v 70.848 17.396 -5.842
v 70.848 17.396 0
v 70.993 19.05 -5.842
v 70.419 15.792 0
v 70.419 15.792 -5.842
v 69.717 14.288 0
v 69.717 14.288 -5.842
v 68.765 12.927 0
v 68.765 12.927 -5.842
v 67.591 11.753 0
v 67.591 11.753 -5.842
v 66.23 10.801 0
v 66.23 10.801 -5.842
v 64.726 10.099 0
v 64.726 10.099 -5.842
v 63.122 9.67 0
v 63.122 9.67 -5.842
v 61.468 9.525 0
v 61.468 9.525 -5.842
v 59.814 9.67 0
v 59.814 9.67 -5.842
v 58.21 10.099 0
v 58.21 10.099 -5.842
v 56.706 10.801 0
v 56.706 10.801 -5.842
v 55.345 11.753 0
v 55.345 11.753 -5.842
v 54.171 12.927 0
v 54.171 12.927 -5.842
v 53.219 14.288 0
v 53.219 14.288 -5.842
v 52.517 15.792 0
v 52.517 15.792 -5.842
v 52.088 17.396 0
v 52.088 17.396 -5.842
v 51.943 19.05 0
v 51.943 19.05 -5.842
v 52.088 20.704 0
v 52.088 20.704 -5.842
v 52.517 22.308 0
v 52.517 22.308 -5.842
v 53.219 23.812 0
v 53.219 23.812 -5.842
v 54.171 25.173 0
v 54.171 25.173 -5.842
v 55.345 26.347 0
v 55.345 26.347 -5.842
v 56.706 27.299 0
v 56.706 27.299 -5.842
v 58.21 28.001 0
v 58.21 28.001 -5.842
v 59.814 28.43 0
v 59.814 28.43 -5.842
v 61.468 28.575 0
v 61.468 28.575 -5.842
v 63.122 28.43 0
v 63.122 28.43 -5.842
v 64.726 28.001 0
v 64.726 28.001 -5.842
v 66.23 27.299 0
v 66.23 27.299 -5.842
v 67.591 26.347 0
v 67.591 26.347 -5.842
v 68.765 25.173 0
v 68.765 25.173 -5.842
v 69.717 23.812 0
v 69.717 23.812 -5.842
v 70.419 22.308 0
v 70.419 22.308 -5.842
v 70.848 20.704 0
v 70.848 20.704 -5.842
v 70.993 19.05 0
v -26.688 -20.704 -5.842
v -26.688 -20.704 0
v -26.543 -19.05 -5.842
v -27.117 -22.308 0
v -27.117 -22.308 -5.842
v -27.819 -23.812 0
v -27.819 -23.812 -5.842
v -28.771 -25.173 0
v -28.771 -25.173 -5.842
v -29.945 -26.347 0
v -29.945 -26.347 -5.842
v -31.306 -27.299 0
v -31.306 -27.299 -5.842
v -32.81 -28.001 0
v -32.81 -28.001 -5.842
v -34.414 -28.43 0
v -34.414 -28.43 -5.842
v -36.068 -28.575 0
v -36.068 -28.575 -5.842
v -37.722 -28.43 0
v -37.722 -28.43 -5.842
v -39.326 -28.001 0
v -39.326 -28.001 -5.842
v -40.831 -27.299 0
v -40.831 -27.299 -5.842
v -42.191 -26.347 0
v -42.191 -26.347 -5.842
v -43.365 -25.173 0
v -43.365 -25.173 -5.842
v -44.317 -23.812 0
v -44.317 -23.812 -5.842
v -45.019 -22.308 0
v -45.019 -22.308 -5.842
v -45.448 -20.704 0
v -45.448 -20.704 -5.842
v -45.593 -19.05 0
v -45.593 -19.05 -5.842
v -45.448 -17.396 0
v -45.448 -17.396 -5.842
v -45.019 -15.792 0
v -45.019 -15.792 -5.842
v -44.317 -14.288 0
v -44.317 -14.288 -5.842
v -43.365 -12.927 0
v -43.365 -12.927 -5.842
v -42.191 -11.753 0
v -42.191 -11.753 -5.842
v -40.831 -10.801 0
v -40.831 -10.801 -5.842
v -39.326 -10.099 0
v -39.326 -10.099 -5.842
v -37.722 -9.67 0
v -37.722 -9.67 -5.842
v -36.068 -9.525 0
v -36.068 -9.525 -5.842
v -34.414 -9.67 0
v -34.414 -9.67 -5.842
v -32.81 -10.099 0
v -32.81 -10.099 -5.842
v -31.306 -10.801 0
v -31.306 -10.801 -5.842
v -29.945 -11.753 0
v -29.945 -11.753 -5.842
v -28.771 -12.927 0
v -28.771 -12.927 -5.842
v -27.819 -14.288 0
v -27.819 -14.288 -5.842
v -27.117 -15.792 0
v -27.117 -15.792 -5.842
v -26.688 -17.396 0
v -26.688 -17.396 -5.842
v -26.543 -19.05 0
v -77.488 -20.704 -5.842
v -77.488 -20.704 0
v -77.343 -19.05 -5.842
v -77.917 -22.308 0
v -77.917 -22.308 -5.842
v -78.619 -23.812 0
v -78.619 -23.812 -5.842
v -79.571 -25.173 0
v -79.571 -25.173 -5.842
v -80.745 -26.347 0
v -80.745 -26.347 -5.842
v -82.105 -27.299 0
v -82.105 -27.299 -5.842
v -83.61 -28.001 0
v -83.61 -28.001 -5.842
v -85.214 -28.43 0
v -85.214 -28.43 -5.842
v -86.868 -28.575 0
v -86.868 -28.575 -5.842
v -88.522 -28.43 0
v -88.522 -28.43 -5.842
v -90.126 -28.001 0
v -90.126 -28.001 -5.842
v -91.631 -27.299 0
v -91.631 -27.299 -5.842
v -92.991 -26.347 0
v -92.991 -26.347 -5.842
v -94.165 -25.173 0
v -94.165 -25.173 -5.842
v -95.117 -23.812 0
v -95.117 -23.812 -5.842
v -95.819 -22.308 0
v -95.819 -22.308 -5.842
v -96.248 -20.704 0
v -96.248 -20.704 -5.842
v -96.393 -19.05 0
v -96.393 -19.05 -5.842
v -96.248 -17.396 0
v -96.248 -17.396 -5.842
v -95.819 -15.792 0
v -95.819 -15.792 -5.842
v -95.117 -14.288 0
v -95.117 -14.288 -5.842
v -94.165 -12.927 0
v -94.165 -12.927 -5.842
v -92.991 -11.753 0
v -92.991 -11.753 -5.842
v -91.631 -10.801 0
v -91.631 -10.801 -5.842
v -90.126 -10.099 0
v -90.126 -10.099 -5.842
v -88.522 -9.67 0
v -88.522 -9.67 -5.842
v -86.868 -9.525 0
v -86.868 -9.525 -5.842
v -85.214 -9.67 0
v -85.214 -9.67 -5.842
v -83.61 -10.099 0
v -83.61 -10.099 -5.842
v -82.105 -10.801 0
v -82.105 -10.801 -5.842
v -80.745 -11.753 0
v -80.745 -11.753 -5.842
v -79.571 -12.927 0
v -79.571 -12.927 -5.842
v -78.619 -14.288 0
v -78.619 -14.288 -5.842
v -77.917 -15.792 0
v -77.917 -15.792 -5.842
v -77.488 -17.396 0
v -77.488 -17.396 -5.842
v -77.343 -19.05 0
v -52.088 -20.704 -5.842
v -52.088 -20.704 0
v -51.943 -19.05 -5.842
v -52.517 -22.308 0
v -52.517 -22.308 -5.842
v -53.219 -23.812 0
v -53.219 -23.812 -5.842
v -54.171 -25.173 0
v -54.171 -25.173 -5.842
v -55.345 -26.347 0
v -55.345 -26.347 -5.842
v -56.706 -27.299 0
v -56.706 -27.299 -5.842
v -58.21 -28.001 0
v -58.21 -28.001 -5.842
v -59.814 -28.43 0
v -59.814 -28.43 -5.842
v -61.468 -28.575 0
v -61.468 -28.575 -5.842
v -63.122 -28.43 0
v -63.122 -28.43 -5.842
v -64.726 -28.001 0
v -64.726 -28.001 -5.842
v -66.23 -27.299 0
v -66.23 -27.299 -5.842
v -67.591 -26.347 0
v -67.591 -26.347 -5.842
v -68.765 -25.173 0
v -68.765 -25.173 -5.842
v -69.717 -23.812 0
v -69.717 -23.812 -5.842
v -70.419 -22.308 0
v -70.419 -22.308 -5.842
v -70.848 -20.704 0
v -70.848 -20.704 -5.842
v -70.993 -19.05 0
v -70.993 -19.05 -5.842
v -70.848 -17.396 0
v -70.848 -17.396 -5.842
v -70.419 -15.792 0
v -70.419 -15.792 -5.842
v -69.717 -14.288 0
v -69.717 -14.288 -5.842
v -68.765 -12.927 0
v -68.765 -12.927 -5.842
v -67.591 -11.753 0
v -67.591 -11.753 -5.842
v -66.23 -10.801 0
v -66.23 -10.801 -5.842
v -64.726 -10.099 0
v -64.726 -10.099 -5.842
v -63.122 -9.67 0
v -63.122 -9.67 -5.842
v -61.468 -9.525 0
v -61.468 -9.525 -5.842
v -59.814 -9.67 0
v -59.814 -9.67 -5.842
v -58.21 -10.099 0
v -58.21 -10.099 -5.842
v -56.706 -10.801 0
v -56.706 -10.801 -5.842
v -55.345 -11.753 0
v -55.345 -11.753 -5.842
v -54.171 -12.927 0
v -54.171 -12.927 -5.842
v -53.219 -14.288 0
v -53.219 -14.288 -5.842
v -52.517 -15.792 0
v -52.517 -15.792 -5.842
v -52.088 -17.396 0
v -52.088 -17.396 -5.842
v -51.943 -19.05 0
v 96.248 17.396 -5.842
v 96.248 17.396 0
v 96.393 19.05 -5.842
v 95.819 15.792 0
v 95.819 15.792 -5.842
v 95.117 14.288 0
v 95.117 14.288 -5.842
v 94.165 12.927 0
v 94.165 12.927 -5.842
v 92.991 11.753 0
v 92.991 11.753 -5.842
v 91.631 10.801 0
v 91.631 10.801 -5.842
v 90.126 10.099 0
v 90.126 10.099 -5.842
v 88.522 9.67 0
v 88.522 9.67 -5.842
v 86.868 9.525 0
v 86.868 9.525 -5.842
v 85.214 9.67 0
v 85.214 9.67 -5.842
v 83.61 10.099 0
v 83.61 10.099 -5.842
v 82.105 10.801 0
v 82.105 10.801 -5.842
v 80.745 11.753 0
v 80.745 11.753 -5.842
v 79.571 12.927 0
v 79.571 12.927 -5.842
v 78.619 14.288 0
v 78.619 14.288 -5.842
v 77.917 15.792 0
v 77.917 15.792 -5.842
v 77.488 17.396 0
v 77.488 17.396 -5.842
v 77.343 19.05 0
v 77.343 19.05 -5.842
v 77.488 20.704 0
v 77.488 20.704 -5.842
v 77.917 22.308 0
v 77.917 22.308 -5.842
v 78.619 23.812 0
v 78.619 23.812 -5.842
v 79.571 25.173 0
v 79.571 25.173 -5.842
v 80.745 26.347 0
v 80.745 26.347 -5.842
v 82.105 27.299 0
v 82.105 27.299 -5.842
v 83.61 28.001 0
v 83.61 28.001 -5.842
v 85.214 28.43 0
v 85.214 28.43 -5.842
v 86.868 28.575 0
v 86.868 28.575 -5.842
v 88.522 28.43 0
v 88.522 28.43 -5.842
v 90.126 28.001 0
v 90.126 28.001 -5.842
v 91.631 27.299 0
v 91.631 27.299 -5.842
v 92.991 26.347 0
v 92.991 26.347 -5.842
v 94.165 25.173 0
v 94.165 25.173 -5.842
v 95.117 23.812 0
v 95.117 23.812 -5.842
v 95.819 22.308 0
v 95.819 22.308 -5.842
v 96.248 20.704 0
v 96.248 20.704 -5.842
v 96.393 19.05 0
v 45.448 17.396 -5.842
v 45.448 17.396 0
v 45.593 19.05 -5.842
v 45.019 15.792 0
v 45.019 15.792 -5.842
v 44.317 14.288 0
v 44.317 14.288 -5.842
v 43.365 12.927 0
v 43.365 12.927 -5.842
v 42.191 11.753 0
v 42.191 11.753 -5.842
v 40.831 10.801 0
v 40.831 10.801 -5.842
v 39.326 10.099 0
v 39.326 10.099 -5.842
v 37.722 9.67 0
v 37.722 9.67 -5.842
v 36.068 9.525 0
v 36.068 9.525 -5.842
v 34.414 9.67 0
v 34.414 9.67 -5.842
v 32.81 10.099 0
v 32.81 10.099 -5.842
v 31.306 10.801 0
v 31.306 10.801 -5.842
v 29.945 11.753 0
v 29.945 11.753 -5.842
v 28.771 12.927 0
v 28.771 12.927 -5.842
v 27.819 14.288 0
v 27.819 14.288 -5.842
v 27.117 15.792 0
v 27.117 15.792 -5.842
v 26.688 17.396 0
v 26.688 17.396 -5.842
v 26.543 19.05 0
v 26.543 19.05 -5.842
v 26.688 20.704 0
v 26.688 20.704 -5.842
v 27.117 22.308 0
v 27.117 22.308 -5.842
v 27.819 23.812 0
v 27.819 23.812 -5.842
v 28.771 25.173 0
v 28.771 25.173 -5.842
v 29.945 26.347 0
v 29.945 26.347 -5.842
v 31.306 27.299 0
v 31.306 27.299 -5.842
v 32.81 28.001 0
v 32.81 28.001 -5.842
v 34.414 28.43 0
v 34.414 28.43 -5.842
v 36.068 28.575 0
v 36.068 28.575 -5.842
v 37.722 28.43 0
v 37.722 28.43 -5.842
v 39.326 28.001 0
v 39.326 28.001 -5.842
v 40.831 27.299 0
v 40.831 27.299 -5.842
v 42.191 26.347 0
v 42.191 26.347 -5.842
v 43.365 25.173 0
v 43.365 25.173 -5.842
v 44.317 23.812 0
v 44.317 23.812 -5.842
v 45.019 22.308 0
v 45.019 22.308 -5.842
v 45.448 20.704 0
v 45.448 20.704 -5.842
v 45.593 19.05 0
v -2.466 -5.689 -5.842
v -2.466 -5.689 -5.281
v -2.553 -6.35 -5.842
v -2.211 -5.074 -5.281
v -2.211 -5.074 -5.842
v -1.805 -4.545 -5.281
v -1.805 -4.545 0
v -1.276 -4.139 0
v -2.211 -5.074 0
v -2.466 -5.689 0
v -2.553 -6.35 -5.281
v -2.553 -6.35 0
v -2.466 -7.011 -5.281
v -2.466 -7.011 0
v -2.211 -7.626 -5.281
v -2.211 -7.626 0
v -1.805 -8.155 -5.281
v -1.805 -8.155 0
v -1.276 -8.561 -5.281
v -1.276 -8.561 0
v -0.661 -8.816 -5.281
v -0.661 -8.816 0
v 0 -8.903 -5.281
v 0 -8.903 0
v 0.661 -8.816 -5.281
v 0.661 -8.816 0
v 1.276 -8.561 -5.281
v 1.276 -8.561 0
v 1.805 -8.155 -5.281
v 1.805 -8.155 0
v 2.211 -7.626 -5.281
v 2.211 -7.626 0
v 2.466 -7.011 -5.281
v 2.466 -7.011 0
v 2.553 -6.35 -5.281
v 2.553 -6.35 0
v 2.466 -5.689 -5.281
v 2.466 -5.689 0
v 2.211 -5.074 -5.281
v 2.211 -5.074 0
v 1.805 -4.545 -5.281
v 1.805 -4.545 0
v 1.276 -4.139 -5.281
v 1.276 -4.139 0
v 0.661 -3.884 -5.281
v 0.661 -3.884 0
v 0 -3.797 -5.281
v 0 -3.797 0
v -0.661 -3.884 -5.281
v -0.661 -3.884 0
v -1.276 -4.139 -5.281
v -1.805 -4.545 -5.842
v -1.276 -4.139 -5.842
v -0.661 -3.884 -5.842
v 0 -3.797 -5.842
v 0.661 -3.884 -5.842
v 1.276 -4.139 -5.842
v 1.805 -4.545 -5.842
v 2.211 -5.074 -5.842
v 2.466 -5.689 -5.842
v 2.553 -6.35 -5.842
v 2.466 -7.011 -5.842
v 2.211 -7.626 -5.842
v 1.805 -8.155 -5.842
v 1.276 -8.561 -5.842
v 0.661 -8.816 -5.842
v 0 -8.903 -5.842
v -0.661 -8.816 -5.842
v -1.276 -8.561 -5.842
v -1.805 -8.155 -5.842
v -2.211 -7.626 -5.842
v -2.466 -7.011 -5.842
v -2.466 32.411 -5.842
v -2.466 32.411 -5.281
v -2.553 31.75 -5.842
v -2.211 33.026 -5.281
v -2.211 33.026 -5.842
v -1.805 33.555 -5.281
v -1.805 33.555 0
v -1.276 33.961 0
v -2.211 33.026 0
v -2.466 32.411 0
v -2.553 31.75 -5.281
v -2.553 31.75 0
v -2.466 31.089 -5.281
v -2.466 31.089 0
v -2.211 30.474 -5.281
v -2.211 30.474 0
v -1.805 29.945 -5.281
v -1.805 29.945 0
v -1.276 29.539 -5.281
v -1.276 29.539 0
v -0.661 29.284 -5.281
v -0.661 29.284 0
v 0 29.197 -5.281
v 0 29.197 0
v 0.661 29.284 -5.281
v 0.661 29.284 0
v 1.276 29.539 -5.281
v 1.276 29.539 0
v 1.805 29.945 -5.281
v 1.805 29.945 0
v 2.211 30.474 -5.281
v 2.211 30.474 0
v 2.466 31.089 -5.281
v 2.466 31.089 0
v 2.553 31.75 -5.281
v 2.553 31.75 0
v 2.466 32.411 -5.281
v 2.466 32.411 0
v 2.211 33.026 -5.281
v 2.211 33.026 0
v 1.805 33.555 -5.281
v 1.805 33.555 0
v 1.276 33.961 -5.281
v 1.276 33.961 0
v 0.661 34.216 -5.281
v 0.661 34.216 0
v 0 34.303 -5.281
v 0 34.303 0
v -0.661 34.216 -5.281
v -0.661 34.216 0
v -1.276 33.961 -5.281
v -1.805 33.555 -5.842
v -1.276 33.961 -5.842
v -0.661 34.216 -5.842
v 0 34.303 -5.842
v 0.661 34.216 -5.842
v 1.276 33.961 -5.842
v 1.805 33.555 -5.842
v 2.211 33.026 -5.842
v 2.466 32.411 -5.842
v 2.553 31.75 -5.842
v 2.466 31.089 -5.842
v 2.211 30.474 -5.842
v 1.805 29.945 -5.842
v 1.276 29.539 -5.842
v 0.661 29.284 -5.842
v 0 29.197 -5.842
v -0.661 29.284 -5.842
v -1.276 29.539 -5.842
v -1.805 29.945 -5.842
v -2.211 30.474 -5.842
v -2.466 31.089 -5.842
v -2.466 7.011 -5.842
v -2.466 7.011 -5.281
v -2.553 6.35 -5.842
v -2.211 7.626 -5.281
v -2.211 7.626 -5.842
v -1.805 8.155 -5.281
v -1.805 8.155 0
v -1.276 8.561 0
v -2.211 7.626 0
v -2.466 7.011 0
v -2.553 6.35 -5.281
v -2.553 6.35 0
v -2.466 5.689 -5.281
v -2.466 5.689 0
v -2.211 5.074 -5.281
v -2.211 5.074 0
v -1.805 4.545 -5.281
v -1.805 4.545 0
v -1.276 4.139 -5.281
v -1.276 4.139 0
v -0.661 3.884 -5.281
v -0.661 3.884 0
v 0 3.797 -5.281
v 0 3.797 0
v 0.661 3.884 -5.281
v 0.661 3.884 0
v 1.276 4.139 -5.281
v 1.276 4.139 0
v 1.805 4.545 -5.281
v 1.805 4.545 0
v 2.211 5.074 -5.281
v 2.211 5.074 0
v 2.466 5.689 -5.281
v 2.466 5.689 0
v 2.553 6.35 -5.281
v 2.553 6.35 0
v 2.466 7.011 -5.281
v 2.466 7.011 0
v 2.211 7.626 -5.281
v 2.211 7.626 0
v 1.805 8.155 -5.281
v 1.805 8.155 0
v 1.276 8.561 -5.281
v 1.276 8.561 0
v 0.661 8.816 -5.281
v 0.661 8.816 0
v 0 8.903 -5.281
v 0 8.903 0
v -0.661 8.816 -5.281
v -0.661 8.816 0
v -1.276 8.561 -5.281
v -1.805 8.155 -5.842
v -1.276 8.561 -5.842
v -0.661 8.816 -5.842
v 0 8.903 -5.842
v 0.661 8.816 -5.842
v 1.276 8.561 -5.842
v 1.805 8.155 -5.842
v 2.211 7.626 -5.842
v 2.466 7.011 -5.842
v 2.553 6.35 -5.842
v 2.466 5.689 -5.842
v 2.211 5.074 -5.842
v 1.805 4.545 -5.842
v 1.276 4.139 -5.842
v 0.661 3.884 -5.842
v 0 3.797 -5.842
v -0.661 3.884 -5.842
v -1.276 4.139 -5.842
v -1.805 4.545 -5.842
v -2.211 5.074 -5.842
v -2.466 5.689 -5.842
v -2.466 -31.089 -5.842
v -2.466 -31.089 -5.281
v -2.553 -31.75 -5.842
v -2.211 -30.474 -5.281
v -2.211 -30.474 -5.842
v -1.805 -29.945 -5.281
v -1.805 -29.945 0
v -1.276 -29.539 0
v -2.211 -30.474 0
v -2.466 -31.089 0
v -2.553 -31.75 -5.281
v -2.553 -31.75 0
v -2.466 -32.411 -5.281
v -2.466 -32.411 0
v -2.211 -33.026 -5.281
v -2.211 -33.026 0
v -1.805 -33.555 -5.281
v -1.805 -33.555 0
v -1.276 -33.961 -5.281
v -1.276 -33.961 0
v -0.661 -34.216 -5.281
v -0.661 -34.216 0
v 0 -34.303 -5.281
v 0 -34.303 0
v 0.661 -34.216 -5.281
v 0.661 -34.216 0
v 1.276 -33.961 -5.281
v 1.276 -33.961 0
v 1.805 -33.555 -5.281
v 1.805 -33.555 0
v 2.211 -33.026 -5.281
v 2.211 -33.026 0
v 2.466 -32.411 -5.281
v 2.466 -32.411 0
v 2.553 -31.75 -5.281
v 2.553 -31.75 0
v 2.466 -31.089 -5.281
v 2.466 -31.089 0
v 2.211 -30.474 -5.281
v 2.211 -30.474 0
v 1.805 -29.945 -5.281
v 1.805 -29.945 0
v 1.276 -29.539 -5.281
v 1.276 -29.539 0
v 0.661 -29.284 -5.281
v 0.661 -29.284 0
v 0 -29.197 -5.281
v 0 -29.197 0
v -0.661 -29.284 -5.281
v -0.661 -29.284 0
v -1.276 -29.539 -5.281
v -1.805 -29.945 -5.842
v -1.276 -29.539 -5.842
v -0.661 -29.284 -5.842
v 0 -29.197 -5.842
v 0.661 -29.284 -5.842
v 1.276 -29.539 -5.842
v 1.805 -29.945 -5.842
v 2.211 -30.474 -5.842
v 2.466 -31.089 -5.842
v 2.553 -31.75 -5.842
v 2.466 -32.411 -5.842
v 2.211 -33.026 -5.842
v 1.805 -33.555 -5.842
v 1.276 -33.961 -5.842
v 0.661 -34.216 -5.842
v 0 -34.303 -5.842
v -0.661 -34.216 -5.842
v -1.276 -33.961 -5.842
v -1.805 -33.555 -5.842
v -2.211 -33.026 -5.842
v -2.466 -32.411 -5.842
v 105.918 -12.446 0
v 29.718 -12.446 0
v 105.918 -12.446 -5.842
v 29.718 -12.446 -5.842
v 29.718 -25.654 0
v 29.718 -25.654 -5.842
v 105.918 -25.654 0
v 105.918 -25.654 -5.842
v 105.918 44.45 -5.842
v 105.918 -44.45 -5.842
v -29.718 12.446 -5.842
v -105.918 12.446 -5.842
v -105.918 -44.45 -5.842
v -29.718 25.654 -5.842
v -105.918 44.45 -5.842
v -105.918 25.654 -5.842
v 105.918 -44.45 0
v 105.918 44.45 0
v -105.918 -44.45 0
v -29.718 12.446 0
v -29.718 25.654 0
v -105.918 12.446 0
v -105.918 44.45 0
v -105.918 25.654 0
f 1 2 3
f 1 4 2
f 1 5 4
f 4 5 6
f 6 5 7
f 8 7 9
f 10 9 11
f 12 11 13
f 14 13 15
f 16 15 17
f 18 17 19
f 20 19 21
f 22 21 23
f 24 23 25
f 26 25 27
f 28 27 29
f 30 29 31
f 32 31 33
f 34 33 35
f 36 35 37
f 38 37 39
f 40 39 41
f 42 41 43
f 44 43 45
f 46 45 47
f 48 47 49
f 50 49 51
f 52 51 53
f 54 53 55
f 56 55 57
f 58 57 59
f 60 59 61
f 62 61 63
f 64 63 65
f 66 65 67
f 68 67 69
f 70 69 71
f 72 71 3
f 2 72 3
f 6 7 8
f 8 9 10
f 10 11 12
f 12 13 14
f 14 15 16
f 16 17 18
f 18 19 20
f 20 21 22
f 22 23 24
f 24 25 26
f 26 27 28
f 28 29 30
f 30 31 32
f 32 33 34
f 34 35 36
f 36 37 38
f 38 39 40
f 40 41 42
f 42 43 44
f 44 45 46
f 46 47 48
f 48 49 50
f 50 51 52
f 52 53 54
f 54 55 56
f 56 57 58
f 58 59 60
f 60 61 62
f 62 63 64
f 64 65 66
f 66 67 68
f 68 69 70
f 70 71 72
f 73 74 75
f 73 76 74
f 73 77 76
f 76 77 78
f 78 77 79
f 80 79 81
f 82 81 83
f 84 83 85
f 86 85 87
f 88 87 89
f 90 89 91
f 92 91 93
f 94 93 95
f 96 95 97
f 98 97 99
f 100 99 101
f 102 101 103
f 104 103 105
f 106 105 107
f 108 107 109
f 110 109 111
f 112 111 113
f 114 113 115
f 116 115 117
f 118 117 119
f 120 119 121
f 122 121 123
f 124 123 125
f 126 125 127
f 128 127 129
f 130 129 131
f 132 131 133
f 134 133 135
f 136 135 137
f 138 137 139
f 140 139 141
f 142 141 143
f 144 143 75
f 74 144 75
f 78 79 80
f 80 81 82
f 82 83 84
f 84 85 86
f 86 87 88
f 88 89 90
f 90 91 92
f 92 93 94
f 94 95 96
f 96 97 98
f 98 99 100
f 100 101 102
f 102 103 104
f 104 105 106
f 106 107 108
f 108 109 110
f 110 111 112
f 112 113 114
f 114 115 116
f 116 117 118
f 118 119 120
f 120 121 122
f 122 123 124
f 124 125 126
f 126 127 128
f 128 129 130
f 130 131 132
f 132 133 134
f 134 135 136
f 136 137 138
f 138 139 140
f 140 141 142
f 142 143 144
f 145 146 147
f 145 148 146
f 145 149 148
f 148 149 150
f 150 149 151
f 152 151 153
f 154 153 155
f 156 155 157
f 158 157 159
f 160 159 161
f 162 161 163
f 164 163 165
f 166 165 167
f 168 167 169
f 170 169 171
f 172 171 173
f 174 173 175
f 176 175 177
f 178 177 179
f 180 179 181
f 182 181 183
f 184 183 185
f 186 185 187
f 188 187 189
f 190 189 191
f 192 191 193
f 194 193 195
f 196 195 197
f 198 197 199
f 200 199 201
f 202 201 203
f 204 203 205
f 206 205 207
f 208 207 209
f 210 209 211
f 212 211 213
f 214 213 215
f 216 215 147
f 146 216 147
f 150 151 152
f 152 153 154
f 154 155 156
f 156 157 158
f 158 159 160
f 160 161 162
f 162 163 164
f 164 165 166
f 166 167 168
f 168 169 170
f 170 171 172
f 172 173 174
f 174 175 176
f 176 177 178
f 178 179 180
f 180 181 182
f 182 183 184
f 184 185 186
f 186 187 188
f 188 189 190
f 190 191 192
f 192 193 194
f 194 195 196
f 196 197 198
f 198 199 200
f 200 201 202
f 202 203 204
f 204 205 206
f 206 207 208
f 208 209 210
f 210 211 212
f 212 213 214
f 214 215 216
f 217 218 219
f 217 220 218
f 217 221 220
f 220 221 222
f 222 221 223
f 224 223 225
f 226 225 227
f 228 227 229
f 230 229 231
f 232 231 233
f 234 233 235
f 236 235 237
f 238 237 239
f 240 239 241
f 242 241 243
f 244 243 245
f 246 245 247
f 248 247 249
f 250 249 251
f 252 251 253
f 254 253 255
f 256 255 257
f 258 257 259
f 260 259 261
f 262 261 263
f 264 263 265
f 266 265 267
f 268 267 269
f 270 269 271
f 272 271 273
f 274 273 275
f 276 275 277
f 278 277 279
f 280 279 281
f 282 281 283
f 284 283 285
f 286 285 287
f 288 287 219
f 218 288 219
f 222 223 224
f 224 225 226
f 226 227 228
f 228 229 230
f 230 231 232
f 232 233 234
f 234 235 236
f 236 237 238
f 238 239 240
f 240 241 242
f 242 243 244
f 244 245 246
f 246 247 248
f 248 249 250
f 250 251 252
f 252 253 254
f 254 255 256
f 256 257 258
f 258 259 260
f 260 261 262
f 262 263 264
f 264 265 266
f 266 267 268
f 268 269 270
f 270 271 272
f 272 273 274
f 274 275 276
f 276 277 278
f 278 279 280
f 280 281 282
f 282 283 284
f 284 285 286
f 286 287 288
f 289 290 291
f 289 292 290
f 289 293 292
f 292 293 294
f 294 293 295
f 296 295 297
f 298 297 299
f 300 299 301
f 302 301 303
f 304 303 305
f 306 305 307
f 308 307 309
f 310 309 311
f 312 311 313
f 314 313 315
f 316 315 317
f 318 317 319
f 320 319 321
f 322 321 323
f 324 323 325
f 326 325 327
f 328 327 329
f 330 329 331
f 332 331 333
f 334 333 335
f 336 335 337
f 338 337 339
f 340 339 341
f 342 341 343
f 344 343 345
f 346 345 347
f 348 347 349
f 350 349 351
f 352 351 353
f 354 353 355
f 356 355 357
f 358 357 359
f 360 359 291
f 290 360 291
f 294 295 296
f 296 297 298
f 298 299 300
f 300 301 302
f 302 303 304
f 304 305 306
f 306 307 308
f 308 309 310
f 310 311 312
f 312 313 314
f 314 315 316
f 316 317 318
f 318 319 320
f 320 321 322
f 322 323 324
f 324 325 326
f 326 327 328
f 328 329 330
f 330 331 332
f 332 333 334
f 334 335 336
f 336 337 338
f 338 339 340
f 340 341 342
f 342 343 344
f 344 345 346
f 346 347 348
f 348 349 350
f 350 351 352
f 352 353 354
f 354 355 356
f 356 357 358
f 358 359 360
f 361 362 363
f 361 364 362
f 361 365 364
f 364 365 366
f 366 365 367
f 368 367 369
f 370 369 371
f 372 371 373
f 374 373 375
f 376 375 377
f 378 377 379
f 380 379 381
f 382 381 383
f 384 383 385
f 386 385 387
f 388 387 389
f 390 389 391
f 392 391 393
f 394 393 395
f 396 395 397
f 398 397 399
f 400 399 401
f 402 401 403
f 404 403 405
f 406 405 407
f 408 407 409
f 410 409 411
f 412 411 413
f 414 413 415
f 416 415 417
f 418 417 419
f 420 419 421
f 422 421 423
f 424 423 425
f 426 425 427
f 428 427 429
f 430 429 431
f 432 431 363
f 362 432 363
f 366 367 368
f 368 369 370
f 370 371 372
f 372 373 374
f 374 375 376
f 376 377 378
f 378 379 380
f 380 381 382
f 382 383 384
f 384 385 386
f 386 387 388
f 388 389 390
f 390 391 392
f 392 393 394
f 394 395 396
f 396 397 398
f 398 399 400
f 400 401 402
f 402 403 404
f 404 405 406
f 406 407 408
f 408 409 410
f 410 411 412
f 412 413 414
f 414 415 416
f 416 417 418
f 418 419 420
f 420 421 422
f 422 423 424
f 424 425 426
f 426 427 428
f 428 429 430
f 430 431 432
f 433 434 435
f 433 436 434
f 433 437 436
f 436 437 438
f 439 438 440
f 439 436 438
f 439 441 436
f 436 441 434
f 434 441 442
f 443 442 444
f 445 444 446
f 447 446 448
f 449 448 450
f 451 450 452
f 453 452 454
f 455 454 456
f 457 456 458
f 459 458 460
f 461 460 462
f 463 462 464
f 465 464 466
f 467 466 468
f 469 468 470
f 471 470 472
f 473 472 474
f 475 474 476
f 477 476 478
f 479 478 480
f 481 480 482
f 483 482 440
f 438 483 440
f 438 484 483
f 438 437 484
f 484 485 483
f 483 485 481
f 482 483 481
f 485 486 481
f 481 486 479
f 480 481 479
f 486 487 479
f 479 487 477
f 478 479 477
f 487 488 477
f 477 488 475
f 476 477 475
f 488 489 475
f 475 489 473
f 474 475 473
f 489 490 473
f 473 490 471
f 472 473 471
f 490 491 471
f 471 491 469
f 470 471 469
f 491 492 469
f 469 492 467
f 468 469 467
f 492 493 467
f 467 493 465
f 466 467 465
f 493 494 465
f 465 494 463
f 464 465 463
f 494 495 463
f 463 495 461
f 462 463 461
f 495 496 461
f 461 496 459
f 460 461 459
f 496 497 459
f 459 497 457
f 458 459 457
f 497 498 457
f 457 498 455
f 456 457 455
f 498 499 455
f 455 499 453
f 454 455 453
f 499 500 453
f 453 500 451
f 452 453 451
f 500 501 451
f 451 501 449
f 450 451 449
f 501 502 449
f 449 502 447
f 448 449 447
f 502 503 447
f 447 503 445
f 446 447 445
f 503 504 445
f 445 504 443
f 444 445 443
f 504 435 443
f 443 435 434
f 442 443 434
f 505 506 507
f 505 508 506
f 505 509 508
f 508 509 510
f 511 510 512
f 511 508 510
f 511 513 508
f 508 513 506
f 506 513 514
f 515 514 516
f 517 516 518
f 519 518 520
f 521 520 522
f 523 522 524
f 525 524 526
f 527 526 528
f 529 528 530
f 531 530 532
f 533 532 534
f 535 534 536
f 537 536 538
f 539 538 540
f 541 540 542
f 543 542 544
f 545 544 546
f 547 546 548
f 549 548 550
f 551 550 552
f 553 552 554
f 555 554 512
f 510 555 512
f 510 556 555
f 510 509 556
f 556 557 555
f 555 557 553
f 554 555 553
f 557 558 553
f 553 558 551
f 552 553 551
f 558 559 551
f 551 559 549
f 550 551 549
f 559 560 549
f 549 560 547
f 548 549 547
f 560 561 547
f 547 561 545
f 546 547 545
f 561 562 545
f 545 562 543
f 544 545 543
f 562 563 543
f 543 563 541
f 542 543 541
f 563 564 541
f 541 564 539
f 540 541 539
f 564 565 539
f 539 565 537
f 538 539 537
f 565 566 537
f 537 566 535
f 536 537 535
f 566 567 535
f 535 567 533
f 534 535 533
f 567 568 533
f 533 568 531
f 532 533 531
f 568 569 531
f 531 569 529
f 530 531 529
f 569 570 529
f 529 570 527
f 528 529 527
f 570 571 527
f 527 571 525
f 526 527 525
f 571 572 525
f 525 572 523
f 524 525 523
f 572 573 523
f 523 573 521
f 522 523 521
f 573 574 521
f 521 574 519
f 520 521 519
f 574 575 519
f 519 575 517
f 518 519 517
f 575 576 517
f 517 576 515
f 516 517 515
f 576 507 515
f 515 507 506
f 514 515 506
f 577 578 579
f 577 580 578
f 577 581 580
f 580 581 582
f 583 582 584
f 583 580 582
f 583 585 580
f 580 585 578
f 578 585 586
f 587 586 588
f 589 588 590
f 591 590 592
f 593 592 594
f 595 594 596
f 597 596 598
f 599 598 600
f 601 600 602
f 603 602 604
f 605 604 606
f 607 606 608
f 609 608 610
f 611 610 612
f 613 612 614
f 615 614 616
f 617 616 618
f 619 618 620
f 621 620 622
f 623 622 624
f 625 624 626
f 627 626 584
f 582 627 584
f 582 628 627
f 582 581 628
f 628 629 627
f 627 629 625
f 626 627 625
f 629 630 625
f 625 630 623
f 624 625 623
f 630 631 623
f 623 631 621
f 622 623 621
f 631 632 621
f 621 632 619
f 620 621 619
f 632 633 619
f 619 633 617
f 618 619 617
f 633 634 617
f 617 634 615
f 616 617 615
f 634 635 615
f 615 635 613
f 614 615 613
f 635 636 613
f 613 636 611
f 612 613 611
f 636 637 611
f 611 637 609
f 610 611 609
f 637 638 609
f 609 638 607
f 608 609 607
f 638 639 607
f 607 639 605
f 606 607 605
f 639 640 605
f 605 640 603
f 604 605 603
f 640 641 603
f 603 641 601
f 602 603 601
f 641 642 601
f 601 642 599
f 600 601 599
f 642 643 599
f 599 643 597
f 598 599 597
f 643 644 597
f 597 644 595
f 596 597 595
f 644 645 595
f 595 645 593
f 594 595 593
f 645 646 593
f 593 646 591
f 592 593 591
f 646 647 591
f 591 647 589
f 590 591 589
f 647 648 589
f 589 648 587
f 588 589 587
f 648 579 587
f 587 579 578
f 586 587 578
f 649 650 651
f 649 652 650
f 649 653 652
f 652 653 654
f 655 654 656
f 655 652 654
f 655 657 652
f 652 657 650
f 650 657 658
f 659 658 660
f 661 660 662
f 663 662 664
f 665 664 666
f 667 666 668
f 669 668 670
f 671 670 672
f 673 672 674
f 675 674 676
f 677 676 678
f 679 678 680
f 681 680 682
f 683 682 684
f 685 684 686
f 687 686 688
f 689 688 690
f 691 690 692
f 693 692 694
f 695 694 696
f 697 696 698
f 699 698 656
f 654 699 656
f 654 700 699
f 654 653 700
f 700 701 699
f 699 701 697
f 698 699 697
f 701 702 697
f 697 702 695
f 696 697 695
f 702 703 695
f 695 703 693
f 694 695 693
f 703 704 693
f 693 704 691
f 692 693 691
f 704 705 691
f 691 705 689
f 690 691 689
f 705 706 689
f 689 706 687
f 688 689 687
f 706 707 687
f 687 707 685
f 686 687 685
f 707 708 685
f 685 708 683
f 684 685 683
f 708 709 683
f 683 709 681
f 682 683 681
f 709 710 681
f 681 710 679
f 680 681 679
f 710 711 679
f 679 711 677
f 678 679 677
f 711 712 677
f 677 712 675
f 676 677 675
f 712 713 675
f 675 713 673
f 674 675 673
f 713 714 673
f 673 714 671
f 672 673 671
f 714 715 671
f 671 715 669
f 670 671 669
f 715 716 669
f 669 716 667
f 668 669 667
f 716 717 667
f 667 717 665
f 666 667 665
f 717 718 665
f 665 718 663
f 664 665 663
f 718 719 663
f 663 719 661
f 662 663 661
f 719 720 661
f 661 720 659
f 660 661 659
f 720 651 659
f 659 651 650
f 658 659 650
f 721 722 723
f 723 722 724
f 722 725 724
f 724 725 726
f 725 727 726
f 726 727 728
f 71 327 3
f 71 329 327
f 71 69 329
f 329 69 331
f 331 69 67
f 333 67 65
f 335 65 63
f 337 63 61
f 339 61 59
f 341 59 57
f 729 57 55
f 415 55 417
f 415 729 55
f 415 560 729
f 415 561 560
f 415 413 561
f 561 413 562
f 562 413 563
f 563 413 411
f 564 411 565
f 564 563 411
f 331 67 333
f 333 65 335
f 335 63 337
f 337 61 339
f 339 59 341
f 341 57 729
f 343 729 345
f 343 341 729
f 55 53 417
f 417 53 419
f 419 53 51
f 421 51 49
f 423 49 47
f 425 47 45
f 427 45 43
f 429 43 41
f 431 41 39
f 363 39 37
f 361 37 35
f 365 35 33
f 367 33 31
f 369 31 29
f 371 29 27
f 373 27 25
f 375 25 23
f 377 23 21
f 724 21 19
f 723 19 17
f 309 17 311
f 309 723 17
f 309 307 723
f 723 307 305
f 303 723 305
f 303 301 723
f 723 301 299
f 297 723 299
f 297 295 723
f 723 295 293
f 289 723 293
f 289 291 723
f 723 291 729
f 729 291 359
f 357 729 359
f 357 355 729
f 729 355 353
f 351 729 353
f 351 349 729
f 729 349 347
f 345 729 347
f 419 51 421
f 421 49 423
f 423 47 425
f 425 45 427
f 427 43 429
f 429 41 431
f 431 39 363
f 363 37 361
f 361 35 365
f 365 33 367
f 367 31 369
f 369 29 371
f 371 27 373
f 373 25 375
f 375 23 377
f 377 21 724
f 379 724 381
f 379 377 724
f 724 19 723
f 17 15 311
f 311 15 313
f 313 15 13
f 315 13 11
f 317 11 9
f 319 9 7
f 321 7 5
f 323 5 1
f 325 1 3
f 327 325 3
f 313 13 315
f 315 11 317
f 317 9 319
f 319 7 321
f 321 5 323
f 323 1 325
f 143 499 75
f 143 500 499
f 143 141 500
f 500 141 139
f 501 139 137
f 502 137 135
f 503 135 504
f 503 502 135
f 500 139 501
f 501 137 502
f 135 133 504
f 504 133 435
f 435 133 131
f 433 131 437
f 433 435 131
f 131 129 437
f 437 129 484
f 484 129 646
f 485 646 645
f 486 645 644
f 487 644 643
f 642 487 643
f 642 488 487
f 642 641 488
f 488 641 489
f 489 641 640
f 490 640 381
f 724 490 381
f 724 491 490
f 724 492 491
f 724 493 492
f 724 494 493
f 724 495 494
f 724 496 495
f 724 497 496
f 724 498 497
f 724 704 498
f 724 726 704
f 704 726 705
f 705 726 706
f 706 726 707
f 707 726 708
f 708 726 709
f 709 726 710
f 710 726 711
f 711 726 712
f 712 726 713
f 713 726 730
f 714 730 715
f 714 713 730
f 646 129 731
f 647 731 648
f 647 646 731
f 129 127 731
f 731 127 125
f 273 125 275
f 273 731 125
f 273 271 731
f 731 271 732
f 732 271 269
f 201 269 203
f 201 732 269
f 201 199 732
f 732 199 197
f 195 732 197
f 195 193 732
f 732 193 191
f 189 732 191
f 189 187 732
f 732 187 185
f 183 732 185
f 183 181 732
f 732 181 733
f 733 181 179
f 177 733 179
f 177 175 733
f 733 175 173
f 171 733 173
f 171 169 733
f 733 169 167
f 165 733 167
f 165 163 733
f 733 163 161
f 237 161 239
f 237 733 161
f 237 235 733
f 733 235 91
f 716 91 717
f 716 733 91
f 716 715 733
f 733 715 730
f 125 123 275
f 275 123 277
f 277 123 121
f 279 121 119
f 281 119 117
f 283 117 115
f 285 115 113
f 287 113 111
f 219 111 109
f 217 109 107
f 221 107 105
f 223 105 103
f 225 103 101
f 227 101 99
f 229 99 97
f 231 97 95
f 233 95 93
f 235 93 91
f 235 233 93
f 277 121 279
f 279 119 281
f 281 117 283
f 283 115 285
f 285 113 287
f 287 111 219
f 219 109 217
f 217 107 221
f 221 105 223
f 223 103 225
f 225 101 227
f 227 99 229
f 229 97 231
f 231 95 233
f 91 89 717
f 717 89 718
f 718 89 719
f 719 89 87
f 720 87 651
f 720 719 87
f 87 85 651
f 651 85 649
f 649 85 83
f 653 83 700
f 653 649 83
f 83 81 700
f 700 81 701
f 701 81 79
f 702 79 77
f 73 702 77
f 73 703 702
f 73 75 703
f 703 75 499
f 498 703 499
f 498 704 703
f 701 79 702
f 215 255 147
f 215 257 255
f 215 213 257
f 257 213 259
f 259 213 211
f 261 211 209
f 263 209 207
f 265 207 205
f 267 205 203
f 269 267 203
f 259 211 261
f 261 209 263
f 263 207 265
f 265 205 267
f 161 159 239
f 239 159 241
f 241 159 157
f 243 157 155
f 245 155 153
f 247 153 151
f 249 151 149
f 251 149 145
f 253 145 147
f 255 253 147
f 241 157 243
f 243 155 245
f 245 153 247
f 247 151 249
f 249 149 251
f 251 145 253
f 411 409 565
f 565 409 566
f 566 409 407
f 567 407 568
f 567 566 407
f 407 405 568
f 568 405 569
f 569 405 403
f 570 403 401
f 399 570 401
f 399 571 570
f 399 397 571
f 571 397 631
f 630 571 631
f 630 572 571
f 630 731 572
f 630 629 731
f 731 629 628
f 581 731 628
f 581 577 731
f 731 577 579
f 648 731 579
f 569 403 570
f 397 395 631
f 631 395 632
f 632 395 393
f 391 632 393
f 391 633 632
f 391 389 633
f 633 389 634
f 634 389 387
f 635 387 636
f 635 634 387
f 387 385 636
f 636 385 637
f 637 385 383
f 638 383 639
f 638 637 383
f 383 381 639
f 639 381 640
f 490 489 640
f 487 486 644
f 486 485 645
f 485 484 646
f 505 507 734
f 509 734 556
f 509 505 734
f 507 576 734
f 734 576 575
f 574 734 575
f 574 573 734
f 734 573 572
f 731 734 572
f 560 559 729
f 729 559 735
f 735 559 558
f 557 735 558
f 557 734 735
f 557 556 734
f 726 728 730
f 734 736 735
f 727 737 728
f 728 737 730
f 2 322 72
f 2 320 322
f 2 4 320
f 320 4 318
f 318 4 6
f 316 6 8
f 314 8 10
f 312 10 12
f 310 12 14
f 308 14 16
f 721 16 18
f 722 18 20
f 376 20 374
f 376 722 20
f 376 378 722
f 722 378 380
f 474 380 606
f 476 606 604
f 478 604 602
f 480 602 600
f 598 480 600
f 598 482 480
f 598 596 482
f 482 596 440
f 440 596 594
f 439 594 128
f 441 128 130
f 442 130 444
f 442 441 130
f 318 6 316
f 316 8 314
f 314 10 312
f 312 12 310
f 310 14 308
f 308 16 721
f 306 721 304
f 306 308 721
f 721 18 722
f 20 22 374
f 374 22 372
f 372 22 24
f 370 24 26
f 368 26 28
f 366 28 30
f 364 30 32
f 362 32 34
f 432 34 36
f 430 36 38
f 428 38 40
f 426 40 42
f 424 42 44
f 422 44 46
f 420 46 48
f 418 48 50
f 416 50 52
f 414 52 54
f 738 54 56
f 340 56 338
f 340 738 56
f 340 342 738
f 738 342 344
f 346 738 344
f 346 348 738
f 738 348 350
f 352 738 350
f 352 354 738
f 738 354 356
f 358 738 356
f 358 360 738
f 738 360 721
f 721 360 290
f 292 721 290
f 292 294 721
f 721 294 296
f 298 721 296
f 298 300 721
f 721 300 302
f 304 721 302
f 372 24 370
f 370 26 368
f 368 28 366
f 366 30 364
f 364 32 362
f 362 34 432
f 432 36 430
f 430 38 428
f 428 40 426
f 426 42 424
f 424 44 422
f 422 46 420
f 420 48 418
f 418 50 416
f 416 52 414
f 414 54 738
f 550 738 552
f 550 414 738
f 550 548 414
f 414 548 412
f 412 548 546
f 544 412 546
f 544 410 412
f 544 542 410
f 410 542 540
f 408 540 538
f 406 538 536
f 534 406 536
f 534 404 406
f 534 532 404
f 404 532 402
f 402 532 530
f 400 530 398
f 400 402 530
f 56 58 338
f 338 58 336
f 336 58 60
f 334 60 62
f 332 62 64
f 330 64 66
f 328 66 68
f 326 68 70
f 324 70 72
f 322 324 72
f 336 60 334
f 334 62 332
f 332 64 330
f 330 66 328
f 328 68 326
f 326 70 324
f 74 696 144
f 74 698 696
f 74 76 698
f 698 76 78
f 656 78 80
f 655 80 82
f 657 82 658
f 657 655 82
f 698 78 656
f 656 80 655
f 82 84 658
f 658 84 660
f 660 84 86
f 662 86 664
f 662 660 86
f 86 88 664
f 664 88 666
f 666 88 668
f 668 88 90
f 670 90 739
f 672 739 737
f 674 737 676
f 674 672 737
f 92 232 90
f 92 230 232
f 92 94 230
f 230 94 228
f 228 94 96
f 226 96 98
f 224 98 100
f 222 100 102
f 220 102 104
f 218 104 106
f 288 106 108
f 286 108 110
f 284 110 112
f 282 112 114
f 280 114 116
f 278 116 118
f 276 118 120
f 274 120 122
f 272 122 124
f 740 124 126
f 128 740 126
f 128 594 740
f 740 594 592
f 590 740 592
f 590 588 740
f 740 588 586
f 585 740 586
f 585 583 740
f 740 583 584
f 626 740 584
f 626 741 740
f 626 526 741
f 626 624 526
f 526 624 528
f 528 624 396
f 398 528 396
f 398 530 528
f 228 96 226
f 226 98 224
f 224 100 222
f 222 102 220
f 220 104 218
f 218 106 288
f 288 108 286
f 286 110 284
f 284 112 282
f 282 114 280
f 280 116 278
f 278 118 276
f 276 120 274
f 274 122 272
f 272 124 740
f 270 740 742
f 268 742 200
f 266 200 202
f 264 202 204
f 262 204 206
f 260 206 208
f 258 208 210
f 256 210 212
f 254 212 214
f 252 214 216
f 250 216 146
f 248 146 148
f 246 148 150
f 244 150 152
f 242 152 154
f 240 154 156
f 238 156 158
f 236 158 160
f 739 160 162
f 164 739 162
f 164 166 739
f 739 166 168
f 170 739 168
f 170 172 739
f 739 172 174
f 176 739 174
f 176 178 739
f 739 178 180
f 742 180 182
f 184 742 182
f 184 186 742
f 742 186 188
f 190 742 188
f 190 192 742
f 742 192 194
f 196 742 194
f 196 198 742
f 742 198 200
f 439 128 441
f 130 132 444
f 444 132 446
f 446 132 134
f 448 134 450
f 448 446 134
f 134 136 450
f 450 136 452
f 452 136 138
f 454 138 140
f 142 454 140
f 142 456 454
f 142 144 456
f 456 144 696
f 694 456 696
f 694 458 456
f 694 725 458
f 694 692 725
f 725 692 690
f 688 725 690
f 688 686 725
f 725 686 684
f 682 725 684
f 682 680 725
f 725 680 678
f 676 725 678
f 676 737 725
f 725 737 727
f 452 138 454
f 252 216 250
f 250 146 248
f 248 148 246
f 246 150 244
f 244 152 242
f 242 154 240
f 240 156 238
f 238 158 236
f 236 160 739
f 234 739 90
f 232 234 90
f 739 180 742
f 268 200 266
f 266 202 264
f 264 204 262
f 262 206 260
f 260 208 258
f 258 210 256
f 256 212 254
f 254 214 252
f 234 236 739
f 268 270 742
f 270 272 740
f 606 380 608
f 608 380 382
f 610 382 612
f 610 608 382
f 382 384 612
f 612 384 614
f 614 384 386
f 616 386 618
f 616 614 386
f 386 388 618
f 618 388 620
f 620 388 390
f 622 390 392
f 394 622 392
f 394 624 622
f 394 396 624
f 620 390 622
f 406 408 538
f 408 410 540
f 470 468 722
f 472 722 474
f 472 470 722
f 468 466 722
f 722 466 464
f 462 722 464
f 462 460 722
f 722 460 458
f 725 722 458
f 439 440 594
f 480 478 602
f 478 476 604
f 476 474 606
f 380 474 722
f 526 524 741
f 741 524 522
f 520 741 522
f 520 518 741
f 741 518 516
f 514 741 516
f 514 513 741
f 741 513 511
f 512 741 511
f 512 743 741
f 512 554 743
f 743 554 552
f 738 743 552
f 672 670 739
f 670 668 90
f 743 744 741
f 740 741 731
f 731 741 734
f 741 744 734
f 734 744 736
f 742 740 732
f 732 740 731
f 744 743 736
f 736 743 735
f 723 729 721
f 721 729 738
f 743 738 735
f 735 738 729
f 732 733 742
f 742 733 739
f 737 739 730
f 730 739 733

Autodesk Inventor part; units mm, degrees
ref_plane "YZ Plane" through (0, 0, 0) normal (1, 0, 0) x (0, 1, 0)
ref_plane "XZ Plane" through (0, 0, 0) normal (0, 1, 0) x (-1, 0, 0)
ref_plane "XY Plane" through (0, 0, 0) normal (0, 0, 1) x (1, 0, 0)
sketch "Sketch1" plane through (0, 0, 0) normal (0, 0, 1) x (1, 0, 0)
  line L0 (-105.918, -44.45) -> (105.918, -44.45)
  line L1 (105.918, -44.45) -> (105.918, 44.45)
  line L2 (105.918, 44.45) -> (-105.918, 44.45)
  line L3 (-105.918, 44.45) -> (-105.918, -44.45)
  line L4 (-29.718, 44.45) -> (-29.718, -44.45) construction
  line L5 (29.718, 44.45) -> (29.718, -44.45) construction
  line L6 (-105.918, 19.05) -> (105.918, 19.05) construction
  line L7 (-105.918, -19.05) -> (105.918, -19.05) construction
  line L8 (-67.818, 44.45) -> (-67.818, -44.45) construction
  line L9 (67.818, 44.45) -> (67.818, -44.45) construction
  line L10 (-105.918, 12.446) -> (-29.718, 12.446)
  line L11 (-29.718, 12.446) -> (-29.718, 25.654)
  line L12 (-29.718, 25.654) -> (-105.918, 25.654)
  line L13 (-105.918, 25.654) -> (-105.918, 12.446)
  line L14 (-105.918, 12.446) -> (-29.718, 25.654) construction
  line L15 (-29.718, 12.446) -> (-105.918, 25.654) construction
  line L16 (29.718, -25.654) -> (105.918, -25.654)
  line L17 (105.918, -25.654) -> (105.918, -12.446)
  line L18 (105.918, -12.446) -> (29.718, -12.446)
  line L19 (29.718, -12.446) -> (29.718, -25.654)
  line L20 (29.718, -25.654) -> (105.918, -12.446) construction
  line L21 (105.918, -25.654) -> (29.718, -12.446) construction
  point P0 (0, 0)
  point P1 (-67.818, 19.05)
  point P2 (67.818, -19.05)
  dimension "d2" = 29.718
  dimension "d3" = 29.718
  dimension "d4" = 19.05
  dimension "d5" = 19.05
  dimension "d6" = 67.818
  dimension "d7" = 67.818
  dimension "d9" = 13.208
  dimension "d10" = 76.2
  dimension "d11" = 105.918
  dimension "d12" = 44.45
  dimension "d15" = 105.918
  dimension "d16" = 44.45
extrude "Extrusion1" add sketch "Sketch1" against normal blind 5.842 contours L3 L10 L11 L12 L2 L1 L18 L19 L16 L0
sketch "Sketch2" plane through (0, 0, 0) normal (0, 0, 1) x (1, 0, 0)
  point P0 (0, 0)
  point P1 (0, 31.75)
  point P2 (0, 6.35)
  point P3 (0, -6.35)
  point P4 (0, -31.75)
  dimension "d17" = 25.4
  dimension "d18" = 6.35
  dimension "d19" = 6.35
  dimension "d20" = 25.4
hole "Hole1" at (0, 31.75, 0) at (0, 6.35, 0) at (0, -6.35, 0) at (0, -31.75, 0) direction (0, 0, -1) diameter 5.1054 end through all clearance for "Flat Head Machine Screw (82)" size "#10" standard "Ansi Unified Screw Threads"
sketch "Sketch4" plane through (0, 0, 0) normal (0, 0, 1) x (1, 0, 0)
  line L0 (-105.918, -44.45) -> (-105.918, 12.446) construction
  line L1 (-105.918, -19.05) -> (0, -19.05) construction
  circle A0 centre (-86.868, -19.05) radius 9.525
  circle A1 centre (-61.468, -19.05) radius 9.525
  circle A2 centre (-36.068, -19.05) radius 9.525
  line L2 (0, 19.05) -> (105.8361, 19.05) construction
  circle A3 centre (86.868, 19.05) radius 9.525
  line L3 (105.918, -12.446) -> (105.918, 44.45) projected
  circle A4 centre (61.468, 19.05) radius 9.525
  circle A5 centre (36.068, 19.05) radius 9.525
  point P0 (0, 0)
  dimension "d28" = 19.05
  dimension "d29" = 19.05
  dimension "d32" = 25.4
  dimension "d37" = 19.05
  dimension "d38" = 19.05
  dimension "d39" = 19.05
  dimension "d40" = 19.05
  dimension "d43" = 25.4
extrude "Extrusion2" cut sketch "Sketch4" against normal through all
equation "\"d2\" = offsetForBracketHoles"
equation "\"d3\" = offsetForBracketHoles"
equation "\"d4\" = verticalCenterLineOfSlot"
equation "\"d5\" = verticalCenterLineOfSlot"
equation "\"d6\" = horizontalCenterLineOfSlot"
equation "\"d7\" = horizontalCenterLineOfSlot"
equation "\"d9\" = slotWidth"
equation "\"d10\" = slotLength"
equation "\"d11\" = 0.5 * plateWidth"
equation "\"d12\" = 0.5 * plateHeight"
equation "\"d15\" = 0.5 * plateWidth"
equation "\"d16\" = 0.5 * plateHeight"
equation "\"d13\" = plateThickness"
equation "\"d17\" = boltCentersForBracket"
equation "\"d20\" = boltCentersForBracket"
equation "\"d37\" = verticalCenterLineOfSlot"
equation "\"d38\" = verticalCenterLineOfSlot"
equation "\"plateWidth\" = 2 * offsetForBracketHoles + 2 * slotLength + 2 * edgeForSlot"
equation "\"plateHeight\" = 88.9"
equation "\"offsetForBracketHoles\" = 29.718"
equation "\"slotLength\" = 76.2"
equation "\"verticalCenterLineOfSlot\" = 19.05"
equation "\"cylinderDiameter\" = 12.7"
equation "\"centerLineOfBracket\" = 17.526"
equation "\"horizontalCenterLineOfSlot\" = 0.5 * slotLength + offsetForBracketHoles"
equation "\"plateThickness\" = 5.842"
equation "\"edgeForSlot\" = 0"
equation "\"centerLineMiddleBracket\" = 14.224"
equation "\"boltCentersForBracket\" = 25.4"
equation "\"printerOffset\" = 0.508"
equation "\"slotWidth\" = 13.208"
properties part number "vexPlate" material "PET Plastic"
